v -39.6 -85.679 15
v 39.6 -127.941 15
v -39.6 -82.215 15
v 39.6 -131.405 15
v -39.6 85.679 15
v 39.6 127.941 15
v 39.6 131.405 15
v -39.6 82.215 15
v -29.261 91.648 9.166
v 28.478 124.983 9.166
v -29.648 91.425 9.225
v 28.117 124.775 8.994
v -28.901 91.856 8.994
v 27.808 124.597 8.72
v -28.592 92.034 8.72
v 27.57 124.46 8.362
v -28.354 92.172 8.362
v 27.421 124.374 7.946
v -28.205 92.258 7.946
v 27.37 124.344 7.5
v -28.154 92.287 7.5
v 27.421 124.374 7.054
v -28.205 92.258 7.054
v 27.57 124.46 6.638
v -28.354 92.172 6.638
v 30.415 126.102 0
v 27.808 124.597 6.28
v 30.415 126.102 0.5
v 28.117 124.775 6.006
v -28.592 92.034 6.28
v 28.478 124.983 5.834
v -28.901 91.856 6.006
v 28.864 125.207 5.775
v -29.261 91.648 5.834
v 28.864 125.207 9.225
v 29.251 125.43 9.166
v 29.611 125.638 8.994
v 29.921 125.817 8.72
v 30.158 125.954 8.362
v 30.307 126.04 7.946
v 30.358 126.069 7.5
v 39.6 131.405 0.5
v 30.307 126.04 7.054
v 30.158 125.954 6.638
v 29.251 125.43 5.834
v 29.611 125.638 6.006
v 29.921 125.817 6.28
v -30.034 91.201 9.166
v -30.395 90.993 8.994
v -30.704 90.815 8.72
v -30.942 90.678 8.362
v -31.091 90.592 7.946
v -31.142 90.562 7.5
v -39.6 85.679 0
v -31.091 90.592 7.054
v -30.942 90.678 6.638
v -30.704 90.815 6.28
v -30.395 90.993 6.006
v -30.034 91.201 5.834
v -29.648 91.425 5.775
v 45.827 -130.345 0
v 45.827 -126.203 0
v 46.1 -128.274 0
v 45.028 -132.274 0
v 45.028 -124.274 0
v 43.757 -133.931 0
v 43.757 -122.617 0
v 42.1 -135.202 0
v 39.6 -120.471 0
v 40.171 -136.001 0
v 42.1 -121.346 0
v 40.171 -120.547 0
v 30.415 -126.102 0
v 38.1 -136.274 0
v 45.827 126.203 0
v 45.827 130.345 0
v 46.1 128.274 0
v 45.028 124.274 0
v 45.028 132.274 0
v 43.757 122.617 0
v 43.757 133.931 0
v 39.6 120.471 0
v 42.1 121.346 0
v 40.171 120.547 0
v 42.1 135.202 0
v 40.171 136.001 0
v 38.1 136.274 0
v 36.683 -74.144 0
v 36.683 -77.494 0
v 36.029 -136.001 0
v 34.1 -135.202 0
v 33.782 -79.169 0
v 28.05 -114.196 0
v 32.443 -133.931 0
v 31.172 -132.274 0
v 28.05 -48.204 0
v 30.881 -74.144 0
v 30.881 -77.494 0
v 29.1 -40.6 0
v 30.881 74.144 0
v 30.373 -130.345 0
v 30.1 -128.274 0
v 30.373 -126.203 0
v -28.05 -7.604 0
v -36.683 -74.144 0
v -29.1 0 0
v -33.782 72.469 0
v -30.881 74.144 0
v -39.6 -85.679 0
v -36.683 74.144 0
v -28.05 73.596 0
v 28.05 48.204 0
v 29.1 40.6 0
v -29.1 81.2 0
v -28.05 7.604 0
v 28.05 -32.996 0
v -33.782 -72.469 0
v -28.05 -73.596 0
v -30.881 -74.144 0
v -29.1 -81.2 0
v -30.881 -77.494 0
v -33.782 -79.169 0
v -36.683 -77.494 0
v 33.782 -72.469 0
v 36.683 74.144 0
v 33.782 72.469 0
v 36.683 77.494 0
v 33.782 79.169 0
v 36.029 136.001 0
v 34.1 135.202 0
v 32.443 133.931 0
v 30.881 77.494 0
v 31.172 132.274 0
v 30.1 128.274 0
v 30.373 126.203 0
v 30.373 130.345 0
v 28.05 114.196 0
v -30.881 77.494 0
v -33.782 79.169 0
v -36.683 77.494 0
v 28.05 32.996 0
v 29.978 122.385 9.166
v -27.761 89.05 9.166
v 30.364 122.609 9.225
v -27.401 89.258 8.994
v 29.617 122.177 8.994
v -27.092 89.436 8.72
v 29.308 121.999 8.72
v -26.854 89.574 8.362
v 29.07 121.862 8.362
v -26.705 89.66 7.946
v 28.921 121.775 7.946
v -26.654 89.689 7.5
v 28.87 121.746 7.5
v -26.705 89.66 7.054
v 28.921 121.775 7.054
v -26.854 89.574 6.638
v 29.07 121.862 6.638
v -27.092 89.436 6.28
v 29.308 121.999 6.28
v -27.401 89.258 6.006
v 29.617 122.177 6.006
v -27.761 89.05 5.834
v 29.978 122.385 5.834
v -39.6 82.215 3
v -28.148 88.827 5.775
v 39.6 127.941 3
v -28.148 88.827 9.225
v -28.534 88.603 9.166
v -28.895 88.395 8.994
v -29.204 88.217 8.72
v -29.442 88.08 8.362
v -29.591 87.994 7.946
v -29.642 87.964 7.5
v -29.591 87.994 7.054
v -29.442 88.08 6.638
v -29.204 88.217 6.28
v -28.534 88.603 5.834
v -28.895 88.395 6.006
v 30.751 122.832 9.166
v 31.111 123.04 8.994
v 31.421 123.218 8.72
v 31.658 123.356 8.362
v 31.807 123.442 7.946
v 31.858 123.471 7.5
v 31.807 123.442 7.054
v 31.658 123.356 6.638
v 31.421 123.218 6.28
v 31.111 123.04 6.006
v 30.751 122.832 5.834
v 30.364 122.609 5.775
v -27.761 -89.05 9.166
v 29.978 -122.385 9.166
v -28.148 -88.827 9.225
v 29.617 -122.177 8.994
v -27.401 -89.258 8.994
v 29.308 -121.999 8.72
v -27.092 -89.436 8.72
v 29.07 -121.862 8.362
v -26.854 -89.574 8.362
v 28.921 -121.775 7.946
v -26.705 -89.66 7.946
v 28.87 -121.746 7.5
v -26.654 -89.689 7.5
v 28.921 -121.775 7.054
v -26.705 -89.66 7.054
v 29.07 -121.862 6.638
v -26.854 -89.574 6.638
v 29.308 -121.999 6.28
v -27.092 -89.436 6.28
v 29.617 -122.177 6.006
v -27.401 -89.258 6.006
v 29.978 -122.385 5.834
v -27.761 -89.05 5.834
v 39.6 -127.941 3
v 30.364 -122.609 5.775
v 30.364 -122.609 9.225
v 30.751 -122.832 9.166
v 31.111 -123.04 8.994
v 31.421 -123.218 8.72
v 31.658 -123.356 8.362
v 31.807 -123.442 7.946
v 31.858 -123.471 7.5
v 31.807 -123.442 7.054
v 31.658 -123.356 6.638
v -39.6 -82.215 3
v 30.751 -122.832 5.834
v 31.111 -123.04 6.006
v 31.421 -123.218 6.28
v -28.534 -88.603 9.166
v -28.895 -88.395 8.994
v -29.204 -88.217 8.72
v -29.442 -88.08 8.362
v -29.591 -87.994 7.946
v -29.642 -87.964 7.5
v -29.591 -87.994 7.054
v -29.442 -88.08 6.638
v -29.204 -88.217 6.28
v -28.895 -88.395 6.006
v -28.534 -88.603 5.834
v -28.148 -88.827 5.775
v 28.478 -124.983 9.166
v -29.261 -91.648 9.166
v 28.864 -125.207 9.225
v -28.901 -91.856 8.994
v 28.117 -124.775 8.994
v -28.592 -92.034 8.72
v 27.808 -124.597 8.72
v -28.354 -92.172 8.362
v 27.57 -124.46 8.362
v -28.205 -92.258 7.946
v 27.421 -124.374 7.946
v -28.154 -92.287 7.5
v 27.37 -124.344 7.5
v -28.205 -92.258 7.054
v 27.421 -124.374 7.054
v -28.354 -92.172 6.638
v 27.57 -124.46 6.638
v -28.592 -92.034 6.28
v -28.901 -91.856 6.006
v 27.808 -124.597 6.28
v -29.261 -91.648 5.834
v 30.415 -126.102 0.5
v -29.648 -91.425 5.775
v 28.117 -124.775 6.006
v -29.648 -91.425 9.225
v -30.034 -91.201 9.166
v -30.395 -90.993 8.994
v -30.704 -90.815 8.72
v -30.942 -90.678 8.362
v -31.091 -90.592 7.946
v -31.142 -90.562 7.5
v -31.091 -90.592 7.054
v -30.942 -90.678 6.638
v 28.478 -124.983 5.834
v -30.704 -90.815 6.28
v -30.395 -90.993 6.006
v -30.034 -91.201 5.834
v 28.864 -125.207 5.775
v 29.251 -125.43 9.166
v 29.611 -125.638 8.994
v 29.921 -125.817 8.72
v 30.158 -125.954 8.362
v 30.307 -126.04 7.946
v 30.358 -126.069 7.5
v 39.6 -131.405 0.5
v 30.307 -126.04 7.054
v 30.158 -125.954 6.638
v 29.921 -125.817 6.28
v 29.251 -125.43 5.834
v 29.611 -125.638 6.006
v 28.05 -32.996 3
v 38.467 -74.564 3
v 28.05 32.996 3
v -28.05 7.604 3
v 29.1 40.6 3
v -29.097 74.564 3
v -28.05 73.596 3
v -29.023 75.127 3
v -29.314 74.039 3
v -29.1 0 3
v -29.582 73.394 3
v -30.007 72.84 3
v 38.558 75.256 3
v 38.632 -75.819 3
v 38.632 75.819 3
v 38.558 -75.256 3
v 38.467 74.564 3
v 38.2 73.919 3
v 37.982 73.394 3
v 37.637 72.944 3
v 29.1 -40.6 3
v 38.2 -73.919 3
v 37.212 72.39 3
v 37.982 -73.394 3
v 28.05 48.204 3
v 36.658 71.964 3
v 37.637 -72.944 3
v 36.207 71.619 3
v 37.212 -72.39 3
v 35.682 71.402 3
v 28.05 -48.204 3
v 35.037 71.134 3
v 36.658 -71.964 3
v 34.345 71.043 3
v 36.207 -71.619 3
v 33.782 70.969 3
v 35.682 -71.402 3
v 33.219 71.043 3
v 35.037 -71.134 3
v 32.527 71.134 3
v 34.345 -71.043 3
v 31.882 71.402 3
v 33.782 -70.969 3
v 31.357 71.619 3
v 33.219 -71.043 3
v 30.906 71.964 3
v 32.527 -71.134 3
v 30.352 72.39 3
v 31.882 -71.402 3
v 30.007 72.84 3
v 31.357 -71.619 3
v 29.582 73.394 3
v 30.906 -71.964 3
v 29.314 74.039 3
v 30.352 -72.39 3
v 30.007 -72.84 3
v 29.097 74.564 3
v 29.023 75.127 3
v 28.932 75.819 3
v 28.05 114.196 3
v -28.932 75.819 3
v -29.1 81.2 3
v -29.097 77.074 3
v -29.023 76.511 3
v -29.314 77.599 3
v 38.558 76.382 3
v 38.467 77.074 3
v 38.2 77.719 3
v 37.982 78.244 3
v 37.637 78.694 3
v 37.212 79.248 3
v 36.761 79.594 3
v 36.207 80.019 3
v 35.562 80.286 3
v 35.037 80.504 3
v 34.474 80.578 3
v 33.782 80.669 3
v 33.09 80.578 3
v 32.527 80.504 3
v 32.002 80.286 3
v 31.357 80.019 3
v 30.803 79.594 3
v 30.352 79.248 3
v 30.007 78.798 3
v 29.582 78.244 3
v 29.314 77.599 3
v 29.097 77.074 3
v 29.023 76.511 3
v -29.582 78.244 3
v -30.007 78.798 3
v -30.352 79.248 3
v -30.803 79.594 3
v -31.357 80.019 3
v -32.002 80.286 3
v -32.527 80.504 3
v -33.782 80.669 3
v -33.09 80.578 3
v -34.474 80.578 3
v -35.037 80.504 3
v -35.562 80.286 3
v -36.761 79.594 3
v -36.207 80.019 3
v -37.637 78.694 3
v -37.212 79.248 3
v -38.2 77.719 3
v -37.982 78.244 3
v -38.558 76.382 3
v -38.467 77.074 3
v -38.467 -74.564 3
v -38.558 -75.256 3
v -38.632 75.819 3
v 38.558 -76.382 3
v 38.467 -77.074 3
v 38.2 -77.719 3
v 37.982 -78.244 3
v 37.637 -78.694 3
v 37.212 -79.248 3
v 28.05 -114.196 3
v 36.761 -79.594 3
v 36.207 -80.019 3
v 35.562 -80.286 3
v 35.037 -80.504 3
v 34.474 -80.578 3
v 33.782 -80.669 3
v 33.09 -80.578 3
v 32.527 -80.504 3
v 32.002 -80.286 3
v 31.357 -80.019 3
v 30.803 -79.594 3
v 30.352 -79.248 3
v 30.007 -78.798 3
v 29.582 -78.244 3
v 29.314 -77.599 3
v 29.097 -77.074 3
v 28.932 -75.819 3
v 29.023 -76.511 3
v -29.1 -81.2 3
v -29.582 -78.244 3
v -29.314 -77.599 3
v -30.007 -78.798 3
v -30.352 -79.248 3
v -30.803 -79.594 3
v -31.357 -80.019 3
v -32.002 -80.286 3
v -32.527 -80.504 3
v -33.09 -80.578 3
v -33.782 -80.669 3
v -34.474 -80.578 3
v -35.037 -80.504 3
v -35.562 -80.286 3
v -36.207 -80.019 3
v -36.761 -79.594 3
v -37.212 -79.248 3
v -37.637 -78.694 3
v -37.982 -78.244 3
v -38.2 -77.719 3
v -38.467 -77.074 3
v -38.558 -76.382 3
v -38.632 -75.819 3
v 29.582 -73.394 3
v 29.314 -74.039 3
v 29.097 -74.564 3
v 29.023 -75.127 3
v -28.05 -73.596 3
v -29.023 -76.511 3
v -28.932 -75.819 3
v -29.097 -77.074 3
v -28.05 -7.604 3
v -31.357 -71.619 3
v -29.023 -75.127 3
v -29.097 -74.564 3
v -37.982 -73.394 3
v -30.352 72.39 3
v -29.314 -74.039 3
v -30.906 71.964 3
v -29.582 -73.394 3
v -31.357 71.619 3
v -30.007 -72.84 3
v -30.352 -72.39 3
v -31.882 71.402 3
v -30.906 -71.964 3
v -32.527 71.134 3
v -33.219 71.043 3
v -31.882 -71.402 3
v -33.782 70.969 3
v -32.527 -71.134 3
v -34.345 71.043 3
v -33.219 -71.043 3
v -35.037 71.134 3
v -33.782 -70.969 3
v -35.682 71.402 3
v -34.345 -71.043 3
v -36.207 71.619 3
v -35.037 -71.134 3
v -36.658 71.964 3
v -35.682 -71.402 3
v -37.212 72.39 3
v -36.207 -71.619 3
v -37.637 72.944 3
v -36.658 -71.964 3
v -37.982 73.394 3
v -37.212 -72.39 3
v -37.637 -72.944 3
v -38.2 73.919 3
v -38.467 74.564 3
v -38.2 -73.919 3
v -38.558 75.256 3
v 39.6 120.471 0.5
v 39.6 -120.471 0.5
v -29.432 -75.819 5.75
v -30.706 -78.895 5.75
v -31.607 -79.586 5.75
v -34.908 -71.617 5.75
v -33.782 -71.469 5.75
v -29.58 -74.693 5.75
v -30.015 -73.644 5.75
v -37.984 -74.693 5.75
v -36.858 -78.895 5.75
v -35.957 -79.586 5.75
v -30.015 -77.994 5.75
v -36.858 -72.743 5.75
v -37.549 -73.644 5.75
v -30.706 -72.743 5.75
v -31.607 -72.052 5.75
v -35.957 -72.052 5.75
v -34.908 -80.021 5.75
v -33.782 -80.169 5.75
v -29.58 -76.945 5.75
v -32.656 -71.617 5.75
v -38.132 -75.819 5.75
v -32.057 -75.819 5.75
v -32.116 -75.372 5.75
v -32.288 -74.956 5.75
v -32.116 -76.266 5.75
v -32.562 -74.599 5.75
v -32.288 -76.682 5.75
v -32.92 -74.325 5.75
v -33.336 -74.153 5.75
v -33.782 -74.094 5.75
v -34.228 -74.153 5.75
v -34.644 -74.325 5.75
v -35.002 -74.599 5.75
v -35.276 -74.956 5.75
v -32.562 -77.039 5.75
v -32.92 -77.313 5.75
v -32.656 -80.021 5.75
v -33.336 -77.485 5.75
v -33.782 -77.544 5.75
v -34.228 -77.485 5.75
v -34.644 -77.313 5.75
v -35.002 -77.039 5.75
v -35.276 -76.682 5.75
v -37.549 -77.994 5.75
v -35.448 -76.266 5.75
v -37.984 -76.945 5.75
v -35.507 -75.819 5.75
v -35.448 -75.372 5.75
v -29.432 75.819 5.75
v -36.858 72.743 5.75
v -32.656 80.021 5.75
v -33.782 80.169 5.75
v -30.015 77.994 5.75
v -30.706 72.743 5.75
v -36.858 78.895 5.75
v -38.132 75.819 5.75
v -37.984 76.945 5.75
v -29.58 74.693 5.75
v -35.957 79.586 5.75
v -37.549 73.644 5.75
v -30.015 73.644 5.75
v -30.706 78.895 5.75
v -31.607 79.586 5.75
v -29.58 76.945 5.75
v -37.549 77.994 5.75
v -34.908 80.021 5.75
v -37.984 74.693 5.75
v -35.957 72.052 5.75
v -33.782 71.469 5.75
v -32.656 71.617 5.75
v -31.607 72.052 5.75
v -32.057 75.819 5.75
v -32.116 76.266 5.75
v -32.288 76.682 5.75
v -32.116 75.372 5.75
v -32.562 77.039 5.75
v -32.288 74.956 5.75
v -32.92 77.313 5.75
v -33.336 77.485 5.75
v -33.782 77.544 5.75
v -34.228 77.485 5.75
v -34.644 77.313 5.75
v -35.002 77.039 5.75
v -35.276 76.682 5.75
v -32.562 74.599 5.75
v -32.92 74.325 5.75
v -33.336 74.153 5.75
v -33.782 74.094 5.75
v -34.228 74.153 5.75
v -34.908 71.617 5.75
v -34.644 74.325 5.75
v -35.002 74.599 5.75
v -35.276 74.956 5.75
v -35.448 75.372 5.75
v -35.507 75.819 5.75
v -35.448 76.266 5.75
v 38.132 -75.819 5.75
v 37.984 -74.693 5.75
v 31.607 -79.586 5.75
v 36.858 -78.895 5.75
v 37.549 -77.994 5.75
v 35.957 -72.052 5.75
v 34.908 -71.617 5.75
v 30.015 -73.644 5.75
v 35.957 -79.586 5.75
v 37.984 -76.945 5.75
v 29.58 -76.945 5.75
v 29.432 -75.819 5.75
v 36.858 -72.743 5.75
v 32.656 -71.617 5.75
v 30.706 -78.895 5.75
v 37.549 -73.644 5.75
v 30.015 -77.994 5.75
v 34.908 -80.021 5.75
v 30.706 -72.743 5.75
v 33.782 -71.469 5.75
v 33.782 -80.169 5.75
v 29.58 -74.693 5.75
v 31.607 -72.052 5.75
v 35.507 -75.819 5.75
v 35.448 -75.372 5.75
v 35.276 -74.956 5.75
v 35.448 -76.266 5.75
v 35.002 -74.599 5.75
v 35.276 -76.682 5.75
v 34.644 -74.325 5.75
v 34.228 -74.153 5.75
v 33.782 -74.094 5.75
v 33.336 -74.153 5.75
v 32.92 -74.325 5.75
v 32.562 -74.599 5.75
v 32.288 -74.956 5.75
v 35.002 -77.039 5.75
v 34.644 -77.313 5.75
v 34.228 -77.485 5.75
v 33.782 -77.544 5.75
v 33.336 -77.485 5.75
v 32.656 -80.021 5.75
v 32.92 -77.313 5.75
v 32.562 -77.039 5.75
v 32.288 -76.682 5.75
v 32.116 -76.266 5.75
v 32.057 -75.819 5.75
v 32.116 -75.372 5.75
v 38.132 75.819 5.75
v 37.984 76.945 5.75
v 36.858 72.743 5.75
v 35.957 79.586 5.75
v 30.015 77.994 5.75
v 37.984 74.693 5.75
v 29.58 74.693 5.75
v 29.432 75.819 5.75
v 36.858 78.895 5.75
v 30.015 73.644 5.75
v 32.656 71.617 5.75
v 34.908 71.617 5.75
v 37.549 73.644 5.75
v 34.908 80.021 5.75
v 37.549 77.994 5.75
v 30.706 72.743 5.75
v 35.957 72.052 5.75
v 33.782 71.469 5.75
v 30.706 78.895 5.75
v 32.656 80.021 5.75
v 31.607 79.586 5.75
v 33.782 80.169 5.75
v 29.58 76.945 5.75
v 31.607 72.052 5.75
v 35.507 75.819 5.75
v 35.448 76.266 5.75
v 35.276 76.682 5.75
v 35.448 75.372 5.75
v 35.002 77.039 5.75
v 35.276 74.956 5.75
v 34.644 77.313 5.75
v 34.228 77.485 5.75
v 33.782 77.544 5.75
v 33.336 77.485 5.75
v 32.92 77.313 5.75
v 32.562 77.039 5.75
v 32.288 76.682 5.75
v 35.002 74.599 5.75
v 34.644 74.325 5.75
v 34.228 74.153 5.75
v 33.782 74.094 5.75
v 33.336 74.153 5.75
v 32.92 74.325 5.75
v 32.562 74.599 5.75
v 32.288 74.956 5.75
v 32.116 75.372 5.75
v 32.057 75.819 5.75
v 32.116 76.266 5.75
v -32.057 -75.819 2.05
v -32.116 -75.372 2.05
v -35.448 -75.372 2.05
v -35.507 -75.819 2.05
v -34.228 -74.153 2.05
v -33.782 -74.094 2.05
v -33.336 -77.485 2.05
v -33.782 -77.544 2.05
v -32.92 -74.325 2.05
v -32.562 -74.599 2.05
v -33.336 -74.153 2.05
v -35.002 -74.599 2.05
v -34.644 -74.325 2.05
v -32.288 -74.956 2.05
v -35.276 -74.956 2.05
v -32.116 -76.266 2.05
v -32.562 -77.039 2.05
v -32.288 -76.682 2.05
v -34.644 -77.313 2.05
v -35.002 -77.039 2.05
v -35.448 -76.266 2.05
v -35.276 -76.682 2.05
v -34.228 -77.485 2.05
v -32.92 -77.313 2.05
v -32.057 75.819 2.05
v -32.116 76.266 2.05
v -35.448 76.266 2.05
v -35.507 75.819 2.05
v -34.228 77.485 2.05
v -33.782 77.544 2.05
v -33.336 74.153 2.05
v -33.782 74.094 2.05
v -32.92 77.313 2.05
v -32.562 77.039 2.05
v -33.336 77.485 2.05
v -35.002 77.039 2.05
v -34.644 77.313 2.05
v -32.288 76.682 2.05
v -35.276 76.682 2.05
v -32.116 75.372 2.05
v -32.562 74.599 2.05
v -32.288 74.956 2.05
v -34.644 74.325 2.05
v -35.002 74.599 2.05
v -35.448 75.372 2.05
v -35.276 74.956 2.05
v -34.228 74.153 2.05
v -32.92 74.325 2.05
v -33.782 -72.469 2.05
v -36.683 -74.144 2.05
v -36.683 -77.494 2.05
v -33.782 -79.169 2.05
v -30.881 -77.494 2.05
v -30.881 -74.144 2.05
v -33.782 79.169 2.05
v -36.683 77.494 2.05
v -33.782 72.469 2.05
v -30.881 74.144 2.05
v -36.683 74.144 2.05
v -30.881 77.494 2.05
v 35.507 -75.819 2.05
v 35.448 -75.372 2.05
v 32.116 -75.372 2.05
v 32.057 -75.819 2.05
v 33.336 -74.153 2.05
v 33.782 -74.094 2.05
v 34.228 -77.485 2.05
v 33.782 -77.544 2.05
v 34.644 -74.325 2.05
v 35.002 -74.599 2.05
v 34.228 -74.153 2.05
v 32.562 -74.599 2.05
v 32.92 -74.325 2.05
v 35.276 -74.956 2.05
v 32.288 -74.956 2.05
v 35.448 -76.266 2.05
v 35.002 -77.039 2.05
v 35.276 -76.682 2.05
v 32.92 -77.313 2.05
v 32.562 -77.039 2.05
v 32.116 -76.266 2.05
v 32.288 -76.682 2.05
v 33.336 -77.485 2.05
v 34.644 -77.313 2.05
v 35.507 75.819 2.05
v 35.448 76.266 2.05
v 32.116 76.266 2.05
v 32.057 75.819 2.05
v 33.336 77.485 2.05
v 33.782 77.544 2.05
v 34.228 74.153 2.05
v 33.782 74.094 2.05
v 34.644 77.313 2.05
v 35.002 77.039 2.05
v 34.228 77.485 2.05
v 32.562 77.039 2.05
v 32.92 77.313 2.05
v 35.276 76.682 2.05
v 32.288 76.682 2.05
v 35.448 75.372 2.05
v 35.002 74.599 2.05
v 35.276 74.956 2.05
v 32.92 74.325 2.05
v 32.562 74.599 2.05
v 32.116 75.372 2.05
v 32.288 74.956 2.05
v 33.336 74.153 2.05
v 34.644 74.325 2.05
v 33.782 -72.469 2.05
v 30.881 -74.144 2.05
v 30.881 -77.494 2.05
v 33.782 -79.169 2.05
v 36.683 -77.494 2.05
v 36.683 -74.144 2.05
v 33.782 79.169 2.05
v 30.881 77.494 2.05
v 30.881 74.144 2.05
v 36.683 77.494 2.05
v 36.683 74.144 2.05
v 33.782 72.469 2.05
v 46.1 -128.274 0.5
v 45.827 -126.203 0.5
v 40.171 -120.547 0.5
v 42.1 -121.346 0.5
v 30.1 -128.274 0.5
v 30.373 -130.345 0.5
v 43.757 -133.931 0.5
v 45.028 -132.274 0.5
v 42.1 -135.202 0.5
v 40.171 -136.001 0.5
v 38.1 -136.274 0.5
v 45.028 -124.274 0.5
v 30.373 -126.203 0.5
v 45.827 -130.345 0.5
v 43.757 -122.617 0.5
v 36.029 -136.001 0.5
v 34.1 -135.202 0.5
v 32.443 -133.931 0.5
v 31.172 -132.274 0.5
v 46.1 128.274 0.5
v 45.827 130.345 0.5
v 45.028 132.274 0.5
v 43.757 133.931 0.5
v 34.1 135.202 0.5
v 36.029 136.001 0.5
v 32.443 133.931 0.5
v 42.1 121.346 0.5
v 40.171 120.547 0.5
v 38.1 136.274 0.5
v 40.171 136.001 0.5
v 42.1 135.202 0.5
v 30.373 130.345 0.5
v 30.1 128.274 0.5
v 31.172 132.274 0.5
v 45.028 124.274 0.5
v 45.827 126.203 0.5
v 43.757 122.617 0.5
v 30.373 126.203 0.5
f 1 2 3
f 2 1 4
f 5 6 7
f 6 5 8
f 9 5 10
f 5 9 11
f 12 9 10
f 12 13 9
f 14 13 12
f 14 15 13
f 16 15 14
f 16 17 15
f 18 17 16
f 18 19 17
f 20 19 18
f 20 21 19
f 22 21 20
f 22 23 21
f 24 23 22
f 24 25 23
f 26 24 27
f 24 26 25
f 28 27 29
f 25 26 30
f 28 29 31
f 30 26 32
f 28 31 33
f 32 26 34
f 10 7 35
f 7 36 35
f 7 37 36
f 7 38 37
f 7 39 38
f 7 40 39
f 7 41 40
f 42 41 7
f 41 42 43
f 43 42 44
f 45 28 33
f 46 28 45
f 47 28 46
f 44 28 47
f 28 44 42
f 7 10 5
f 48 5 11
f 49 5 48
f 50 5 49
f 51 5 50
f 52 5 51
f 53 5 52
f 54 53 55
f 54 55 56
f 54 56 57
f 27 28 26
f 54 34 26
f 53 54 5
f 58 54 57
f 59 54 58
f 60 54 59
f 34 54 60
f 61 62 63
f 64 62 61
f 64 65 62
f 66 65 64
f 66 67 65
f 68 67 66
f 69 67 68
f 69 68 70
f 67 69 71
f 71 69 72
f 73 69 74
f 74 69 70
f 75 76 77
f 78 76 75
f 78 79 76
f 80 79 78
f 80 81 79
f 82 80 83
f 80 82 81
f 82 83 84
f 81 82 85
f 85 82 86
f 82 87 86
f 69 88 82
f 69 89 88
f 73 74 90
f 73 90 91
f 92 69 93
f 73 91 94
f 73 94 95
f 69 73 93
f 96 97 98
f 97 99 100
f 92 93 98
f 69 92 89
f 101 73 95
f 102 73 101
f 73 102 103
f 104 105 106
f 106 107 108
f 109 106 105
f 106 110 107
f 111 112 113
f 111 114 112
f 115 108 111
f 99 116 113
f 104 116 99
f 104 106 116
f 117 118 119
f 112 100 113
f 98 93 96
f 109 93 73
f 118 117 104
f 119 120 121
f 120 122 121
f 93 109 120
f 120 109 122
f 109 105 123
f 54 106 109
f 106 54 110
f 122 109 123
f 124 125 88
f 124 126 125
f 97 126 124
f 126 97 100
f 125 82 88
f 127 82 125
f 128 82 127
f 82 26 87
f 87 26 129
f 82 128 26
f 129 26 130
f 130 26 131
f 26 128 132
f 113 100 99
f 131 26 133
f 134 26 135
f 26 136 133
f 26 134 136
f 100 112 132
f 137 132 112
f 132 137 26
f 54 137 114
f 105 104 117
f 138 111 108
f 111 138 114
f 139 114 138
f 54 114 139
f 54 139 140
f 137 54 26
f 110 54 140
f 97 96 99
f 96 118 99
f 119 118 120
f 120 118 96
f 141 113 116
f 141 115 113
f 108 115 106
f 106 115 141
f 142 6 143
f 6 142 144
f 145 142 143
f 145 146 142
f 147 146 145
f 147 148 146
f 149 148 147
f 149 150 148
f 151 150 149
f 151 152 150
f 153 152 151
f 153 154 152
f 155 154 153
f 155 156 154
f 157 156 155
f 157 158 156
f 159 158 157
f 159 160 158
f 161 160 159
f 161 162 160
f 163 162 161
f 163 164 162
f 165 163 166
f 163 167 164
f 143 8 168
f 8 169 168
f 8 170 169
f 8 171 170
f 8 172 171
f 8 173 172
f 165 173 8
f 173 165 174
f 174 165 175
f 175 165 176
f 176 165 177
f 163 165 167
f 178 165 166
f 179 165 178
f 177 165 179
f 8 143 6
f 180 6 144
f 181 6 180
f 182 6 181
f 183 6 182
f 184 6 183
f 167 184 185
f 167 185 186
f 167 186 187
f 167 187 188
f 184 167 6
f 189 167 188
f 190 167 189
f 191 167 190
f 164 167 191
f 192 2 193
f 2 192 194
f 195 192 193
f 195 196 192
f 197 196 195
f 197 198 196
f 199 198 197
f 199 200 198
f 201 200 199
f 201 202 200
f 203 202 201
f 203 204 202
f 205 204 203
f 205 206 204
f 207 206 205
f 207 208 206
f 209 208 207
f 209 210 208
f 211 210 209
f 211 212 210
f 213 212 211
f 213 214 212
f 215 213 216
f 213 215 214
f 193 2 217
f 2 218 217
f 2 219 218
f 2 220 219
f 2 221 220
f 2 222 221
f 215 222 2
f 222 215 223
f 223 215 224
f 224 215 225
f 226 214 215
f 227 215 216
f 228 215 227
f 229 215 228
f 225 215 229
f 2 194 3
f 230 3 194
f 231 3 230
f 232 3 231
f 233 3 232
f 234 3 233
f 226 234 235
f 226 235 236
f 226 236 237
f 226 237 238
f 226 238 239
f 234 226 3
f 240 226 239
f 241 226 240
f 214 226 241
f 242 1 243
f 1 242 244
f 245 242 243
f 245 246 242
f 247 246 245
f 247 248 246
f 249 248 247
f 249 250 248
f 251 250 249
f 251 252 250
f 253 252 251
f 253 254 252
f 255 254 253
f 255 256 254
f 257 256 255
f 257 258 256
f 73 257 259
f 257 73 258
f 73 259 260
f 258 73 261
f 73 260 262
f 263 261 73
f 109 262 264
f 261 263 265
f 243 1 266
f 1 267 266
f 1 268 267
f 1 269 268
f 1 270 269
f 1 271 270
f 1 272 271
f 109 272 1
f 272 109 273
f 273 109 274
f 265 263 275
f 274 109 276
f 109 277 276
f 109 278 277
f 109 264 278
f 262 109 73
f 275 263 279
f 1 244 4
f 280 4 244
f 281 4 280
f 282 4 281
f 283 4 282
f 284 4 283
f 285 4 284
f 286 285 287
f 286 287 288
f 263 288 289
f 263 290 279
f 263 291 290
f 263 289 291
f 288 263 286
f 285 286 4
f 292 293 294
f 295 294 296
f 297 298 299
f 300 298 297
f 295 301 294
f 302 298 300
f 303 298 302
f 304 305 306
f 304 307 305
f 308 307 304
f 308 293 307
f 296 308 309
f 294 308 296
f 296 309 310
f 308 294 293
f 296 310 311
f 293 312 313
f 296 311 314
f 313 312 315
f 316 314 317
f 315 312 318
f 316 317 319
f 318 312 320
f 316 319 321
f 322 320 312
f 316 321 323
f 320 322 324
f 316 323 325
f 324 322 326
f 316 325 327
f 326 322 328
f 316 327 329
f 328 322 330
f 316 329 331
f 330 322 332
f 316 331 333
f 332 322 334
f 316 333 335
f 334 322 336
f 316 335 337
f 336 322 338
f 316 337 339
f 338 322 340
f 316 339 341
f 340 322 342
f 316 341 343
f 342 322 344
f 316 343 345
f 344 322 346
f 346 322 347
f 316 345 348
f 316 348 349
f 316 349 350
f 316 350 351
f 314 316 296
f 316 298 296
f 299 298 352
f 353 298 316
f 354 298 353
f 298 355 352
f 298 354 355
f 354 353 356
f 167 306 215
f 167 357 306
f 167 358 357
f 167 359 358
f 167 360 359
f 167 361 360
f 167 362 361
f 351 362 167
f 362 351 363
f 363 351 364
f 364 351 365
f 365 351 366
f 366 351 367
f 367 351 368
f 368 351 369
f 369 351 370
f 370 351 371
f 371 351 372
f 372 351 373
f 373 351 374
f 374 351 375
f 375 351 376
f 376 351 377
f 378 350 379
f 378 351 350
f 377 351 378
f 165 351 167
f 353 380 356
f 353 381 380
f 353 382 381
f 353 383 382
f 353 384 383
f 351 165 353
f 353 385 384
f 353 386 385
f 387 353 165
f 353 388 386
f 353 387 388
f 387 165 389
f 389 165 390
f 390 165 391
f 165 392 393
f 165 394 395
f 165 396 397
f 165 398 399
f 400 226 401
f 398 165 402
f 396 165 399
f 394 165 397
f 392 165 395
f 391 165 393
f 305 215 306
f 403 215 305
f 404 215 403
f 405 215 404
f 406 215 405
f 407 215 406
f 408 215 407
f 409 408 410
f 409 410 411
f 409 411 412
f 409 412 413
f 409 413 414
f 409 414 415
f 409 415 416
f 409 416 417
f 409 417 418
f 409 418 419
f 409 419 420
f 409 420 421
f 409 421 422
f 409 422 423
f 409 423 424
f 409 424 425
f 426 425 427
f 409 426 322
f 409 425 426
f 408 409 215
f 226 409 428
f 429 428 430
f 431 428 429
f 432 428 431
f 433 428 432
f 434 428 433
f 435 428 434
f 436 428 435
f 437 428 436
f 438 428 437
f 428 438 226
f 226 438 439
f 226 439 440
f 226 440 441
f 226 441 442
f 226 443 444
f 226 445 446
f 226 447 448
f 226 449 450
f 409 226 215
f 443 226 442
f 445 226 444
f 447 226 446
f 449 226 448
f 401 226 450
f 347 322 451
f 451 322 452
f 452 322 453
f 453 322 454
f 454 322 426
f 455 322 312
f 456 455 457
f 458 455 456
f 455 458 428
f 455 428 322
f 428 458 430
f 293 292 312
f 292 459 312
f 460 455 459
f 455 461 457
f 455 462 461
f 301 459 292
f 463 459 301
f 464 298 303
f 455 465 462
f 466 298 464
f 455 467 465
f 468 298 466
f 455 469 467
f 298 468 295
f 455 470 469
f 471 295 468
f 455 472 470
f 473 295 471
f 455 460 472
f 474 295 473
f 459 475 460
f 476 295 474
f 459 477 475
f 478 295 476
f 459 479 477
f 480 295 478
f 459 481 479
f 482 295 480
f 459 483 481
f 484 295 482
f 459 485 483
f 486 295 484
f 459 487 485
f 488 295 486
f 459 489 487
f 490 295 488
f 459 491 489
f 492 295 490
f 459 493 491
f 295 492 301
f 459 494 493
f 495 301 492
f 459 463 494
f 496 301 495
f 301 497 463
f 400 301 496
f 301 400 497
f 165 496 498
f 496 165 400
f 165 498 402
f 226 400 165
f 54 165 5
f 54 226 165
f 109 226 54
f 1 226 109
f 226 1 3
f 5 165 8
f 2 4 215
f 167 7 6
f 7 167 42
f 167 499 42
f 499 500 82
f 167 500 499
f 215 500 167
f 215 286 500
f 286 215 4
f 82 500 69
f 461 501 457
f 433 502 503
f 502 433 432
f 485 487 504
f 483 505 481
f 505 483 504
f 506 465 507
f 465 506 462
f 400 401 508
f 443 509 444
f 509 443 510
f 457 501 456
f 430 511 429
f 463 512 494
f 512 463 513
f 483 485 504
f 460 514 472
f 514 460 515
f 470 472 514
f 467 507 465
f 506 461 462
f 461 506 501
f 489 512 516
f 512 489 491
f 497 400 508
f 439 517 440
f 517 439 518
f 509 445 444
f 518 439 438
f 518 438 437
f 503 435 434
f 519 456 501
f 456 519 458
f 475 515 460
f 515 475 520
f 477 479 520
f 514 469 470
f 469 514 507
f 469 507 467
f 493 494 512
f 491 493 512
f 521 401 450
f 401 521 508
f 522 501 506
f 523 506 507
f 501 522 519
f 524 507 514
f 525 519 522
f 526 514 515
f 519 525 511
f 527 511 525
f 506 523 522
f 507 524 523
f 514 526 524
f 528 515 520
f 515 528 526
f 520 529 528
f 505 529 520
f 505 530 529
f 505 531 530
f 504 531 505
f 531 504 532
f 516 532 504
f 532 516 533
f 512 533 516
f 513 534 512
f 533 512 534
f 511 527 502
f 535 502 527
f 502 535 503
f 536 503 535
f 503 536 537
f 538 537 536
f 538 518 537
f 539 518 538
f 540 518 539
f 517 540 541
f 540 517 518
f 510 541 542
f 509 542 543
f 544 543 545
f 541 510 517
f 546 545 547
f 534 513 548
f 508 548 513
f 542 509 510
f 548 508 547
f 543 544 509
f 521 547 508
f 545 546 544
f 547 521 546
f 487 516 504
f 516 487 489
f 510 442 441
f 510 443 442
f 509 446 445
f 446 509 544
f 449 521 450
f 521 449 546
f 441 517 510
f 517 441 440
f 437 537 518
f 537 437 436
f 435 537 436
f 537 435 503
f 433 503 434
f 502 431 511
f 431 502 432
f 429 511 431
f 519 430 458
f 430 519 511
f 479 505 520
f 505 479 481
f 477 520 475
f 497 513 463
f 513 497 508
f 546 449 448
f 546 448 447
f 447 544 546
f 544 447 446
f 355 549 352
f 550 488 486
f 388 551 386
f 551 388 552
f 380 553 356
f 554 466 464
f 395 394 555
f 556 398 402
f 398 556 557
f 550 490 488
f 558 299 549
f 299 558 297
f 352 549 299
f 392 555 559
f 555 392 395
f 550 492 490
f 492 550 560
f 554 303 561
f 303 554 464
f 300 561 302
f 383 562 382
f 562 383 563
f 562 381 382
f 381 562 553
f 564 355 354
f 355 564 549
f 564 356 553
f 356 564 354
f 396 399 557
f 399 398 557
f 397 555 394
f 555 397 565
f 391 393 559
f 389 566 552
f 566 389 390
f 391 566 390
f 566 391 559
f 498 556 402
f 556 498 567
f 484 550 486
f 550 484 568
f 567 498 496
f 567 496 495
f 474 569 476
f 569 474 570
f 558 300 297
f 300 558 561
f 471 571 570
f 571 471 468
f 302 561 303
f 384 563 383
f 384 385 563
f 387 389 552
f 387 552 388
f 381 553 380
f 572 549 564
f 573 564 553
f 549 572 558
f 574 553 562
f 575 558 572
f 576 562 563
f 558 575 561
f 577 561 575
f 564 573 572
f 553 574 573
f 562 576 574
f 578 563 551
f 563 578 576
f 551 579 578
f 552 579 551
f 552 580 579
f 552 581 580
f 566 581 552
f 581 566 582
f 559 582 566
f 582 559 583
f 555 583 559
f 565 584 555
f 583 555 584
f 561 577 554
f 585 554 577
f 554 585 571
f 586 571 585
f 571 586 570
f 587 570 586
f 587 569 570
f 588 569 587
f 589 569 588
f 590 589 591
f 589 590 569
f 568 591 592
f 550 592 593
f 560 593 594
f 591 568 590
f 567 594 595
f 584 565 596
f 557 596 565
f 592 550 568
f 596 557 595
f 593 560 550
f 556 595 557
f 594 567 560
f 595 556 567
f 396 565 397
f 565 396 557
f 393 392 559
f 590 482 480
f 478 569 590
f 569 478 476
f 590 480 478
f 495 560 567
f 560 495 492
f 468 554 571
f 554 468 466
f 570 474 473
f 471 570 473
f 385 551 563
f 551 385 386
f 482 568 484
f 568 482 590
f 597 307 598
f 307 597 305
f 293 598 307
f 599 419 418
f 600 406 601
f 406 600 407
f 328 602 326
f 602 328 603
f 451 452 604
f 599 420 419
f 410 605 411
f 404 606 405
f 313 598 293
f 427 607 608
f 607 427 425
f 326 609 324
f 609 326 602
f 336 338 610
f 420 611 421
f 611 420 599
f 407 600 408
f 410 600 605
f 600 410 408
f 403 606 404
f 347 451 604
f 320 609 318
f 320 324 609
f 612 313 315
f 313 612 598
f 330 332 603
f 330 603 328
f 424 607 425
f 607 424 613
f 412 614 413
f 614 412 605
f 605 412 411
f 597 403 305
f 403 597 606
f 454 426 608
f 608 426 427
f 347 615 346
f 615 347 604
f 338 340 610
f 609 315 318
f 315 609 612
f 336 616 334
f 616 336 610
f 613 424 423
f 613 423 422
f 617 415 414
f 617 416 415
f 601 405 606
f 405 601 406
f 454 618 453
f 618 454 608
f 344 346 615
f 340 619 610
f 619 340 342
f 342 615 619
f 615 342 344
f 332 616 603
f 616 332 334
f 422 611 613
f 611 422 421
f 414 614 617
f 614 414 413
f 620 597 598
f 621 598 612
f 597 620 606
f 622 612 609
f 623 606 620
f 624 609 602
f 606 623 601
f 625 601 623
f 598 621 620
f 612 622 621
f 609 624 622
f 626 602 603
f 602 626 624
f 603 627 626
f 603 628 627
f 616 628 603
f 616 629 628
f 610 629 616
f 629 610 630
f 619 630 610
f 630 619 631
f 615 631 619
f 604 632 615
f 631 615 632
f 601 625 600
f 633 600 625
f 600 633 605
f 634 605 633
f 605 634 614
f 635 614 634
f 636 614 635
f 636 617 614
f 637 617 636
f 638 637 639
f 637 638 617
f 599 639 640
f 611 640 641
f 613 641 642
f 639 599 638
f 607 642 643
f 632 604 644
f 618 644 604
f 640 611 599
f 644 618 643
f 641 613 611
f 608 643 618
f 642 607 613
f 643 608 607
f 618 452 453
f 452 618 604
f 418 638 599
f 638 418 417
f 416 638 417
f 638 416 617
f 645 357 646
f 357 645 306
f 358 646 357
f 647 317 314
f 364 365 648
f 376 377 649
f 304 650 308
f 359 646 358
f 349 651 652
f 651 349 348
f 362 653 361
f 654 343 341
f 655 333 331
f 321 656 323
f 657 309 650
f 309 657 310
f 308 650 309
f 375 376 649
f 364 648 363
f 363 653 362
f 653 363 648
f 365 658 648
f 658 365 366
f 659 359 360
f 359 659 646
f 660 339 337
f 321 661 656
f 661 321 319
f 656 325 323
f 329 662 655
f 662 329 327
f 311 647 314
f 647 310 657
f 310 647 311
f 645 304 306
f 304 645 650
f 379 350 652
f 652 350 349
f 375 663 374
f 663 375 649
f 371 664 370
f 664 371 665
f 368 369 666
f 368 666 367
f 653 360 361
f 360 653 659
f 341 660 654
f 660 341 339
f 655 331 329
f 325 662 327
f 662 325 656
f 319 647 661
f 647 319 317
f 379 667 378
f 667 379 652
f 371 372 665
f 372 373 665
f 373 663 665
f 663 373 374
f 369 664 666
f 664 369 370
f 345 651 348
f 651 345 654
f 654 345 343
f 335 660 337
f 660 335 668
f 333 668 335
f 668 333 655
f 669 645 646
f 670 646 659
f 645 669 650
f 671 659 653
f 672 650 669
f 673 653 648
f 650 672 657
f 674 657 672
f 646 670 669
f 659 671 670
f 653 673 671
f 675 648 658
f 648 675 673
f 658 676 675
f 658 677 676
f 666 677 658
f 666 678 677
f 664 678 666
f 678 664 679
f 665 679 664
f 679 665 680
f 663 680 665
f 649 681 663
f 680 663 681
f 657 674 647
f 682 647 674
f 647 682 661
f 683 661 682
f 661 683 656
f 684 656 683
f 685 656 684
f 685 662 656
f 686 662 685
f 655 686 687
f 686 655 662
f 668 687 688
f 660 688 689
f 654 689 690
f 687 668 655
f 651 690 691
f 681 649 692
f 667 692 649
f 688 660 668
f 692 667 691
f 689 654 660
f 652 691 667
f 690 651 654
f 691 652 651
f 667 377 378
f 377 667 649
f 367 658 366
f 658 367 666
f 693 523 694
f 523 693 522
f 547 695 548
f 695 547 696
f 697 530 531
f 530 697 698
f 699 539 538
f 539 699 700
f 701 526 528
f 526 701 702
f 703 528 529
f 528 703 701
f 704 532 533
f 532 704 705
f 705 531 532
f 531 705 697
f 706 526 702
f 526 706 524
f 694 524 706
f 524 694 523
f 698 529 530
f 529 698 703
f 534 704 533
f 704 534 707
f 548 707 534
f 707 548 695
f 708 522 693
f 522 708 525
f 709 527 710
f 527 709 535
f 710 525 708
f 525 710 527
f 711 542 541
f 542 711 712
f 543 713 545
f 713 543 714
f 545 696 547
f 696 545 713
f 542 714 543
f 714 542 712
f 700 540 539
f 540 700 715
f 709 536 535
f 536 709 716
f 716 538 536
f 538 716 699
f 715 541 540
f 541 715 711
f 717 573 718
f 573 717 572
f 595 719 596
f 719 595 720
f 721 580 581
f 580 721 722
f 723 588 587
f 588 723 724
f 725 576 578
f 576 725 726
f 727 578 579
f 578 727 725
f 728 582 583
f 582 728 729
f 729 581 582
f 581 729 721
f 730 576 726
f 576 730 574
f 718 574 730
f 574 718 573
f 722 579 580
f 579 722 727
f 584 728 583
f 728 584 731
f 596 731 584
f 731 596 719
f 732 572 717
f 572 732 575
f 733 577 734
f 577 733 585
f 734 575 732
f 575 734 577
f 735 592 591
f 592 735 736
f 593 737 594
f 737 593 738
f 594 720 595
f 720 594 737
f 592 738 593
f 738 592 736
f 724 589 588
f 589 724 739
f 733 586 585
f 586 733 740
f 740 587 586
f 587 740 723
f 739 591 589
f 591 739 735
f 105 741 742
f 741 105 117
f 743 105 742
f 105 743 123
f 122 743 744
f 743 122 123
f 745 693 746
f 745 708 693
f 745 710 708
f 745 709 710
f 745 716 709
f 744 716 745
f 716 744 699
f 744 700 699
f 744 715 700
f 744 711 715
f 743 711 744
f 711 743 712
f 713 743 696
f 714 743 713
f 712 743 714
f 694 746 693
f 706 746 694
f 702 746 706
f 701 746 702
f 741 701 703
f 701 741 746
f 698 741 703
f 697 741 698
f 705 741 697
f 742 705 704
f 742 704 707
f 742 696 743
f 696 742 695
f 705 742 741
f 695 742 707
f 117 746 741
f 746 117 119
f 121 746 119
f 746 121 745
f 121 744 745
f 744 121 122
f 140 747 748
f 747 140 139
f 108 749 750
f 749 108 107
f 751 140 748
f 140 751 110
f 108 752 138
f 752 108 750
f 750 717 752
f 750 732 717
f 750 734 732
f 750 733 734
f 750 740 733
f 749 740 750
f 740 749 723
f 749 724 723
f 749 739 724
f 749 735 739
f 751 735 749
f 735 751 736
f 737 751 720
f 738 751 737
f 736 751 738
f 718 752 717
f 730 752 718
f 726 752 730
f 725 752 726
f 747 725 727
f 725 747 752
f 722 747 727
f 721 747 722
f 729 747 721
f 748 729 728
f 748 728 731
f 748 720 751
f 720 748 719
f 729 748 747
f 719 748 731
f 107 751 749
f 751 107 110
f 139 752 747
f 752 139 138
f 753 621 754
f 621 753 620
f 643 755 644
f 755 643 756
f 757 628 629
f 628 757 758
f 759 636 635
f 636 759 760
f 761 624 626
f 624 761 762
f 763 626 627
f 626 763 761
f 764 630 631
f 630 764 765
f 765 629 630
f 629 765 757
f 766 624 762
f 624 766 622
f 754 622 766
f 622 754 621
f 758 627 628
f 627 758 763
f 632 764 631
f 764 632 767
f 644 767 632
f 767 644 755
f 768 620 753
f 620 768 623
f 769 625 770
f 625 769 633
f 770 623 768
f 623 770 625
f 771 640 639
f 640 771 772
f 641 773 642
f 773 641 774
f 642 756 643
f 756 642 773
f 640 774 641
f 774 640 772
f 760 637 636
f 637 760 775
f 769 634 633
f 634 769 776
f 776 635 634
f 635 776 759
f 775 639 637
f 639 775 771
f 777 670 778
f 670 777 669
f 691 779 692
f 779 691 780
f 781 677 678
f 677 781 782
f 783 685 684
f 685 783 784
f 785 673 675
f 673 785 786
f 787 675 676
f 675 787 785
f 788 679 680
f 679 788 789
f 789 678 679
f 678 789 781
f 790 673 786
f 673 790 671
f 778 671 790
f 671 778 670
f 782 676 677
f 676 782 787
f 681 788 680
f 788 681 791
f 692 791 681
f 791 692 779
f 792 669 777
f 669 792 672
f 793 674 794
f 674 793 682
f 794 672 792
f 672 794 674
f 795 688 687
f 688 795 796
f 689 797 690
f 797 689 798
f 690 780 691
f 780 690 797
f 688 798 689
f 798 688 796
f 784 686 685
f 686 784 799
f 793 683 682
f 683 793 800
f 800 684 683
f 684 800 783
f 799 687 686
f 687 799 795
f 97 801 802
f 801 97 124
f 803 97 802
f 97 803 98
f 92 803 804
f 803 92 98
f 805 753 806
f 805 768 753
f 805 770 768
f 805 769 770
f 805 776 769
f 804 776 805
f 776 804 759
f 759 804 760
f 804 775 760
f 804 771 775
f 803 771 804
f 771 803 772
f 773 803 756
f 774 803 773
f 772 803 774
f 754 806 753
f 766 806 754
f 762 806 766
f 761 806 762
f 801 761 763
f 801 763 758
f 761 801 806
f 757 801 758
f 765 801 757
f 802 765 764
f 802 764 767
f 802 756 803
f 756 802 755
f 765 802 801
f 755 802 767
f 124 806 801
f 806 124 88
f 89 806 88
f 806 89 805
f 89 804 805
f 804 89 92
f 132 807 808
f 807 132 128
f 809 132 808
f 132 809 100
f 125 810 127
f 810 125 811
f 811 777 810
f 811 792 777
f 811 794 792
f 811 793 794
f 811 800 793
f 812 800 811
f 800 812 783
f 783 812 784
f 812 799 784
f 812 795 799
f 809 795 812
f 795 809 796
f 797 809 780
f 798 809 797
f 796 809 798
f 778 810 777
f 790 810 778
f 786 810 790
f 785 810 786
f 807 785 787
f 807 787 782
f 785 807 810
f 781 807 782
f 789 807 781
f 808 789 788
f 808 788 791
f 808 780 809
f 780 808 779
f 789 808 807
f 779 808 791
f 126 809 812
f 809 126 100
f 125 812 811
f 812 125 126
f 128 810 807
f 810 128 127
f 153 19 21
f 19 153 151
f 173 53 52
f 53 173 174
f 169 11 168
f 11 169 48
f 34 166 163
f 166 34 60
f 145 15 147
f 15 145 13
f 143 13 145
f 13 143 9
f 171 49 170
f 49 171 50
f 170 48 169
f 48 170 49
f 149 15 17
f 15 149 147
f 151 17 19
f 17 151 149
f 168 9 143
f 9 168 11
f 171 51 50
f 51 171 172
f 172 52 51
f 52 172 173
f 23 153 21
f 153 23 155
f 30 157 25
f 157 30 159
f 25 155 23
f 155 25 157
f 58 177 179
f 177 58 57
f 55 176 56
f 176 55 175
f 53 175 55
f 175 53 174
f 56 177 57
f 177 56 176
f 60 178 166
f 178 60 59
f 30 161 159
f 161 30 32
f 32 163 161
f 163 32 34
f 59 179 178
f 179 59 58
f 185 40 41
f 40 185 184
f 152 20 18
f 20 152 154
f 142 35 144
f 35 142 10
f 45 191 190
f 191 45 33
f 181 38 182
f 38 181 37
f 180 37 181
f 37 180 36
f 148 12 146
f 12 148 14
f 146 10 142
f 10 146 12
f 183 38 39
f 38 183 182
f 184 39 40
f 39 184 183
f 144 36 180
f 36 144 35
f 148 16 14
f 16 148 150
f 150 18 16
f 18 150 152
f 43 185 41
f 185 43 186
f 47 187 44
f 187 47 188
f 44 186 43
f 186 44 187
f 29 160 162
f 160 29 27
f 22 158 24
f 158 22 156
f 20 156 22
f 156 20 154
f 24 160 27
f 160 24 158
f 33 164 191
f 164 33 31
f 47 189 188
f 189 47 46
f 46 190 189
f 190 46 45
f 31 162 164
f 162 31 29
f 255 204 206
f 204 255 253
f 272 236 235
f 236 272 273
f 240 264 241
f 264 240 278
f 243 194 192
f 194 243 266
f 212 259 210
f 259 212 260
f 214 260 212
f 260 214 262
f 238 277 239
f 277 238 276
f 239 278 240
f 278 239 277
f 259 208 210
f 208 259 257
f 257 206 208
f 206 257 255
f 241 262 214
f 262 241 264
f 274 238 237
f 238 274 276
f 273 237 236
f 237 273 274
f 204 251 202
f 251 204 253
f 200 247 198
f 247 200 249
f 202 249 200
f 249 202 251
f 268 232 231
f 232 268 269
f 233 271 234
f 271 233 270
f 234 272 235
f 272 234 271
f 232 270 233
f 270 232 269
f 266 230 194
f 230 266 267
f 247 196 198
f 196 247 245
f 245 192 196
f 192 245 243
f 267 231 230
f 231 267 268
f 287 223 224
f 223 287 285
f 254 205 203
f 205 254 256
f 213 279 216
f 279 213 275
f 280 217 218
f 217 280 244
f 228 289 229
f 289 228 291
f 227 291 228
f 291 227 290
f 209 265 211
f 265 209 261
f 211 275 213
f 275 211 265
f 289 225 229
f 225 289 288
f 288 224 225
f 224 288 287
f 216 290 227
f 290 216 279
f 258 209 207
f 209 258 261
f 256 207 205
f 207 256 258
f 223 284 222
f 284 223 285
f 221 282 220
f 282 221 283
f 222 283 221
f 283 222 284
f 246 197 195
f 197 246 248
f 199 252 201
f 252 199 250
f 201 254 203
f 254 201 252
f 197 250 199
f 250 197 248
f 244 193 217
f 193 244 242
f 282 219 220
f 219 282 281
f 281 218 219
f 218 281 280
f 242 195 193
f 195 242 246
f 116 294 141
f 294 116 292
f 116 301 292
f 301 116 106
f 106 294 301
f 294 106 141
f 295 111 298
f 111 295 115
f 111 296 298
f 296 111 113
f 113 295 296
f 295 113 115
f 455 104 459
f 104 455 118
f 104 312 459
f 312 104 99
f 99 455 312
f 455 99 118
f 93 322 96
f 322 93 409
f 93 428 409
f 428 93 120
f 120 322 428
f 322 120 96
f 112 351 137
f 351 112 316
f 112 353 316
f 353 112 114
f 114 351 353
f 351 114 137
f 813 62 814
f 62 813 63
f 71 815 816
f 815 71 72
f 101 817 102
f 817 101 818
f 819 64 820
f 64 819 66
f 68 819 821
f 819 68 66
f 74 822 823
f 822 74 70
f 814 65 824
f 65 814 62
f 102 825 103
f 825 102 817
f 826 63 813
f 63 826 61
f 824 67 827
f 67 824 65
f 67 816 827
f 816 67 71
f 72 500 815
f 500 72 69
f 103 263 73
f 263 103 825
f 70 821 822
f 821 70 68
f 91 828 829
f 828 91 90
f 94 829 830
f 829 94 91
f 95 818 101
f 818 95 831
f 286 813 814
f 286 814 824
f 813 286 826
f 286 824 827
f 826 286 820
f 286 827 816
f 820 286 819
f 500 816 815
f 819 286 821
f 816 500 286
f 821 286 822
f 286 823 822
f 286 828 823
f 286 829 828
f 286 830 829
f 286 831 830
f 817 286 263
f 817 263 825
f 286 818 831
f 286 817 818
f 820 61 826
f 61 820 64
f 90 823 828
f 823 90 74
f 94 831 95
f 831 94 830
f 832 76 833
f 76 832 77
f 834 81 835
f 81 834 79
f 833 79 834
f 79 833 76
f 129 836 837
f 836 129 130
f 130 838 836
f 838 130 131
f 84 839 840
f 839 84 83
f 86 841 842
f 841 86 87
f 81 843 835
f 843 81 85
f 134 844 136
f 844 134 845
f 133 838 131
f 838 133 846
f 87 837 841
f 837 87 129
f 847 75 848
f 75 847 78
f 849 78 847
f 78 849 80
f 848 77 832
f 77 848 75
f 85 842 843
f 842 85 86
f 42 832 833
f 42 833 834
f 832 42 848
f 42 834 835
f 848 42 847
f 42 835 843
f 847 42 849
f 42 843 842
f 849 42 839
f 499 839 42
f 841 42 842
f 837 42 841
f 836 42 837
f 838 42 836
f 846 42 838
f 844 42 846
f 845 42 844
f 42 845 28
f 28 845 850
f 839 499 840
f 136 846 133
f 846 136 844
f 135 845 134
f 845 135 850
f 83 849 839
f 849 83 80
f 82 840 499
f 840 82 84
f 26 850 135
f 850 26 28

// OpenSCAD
// file: nema17.scad
/**
 * @author Johann Rocholl <johann@rocholl.net>
 * @license GPL-3.0
 */

include <configuration.scad>;

module nema17() {
  // NEMA 17 stepper motor.
  difference() {
    union() {
      translate([0, 0, -motor_length/2]) intersection() {
        cube([42.2, 42.2, motor_length], center=true);
        cylinder(r=25.1, h=motor_length+1, center=true, $fn=60);
      }
      cylinder(r=11, h=4, center=true, $fn=32);
      cylinder(r=2.5, h=48, center=true, $fn=24);
    }
    for (a = [0:90:359]) {
      rotate([0, 0, a]) translate([15.5, 15.5, 0])
        cylinder(r=m3_radius, h=10, center=true, $fn=12);
    }
  }
}

nema17();
// file: vertex.scad
include <configuration.scad>;

$fn = 24;
roundness = 6;

module extrusion_cutout(h, extra) {
  difference() {
    cube([extrusion+extra, extrusion+extra, h], center=true);
    for (a = [0:90:359]) rotate([0, 0, a]) {
      translate([extrusion/2, 0, 0])
        cube([6, 2.5, h+1], center=true);
    }
  }
}

module screw_socket() {
  cylinder(r=m3_wide_radius, h=20, center=true);
  translate([0, 0, 3.8]) cylinder(r=3.5, h=5);
}

module screw_socket_cone() {
  union() {
    screw_socket();
    scale([1, 6, -1]) # cylinder(r=7, h=4);
  }
}

module vertex(height, idler_offset, idler_space) {
  union() {
    // Pads to improve print bed adhesion for slim ends.
    translate([-(37.5 + idler_offset/2), 52.2 + idler_offset, -height/2]) cylinder(r=8, h=0.5);
    translate([(37.5 + idler_offset/2), 52.2 + idler_offset, -height/2]) cylinder(r=8, h=0.5);
    difference() {
      union() {
        intersection() {
          translate([0, 22, 0])
            cylinder(r=36, h=height, center=true, $fn=60);
          translate([0, -37, 0]) rotate([0, 0, 30])
            cylinder(r=50, h=height+1, center=true, $fn=6);
        }
        translate([0, 38, 0]) intersection() {
          translate([0, idler_offset, 0]) rotate([0, 0, -90])
            cylinder(r=55 + idler_offset, h=height, center=true, $fn=3);
          translate([0, 10, 0])
            cube([100 + idler_offset, 100 + idler_offset, 2*height], center=true);
          translate([0, -10, 0]) rotate([0, 0, 30])
            cylinder(r=55 + idler_offset, h=height+1, center=true, $fn=6);
        }
      }
      difference() {
        translate([0, 58, 0]) minkowski() {
          intersection() {
            rotate([0, 0, -90])
              cylinder(r=55, h=height, center=true, $fn=3);
            translate([0, -32 + idler_offset / 2, 0])
              cube([100, 16 + idler_offset, 2*height], center=true);
          }
          cylinder(r=roundness, h=1, center=true);
        }
        // Idler support cones.
        translate([0, 26+idler_offset-30, 0]) rotate([-90, 0, 0])
          cylinder(r1=30, r2=2, h=30-idler_space/2);
        translate([0, 26+idler_offset+30, 0]) rotate([90, 0, 0])
          cylinder(r1=30, r2=2, h=30-idler_space/2);
      }
      translate([0, 58, 0]) minkowski() {
        intersection() {
          rotate([0, 0, -90])
            cylinder(r=55, h=height, center=true, $fn=3);
          translate([0, 7 + idler_offset, 0])
            cube([100, 30, 2*height], center=true);
        }
        cylinder(r=roundness, h=1, center=true);
      }
      extrusion_cutout(height+10, 2*extra_radius);

      for (z = [30:30:height]) {
        translate([0, -7.5-extra_radius, z+7.5-height/2]) rotate([90, 0, 0])
          screw_socket_cone();
      }

      for (z = [0:30:height]) {
        for (a = [-1, 1]) {
          rotate([0, 0, 30*a]) translate([-16*a, 111, z+7.5-height/2]) {
            // % rotate([90, 0, 0]) extrusion_cutout(200, 0);
            // Screw sockets.
            for (y = [-88 + (idler_offset / 4) * 3, -44 + (idler_offset / 4) * 3]) {
              translate([a*7.5, y, 0]) rotate([0, a*90, 0]) screw_socket();
            }
            // Nut tunnels.
            for (z = [-1, 1]) {
              scale([1, 1, z]) translate([0, -100, 3]) minkowski() {
                rotate([0, 0, -a*30]) cylinder(r=4, h=16, $fn=6);
                cube([0.1, 5, 0.1], center=true);
              }
            }
          }
        }
      }
    }
  }
}

translate([0, 0, 7.5]) vertex(15, idler_offset=15, idler_space=10);
// file: frame_motor.scad
include <configuration.scad>;

use <vertex.scad>;
use <nema17.scad>;

$fn = 24;
idler_offset = 15;

module frame_motor() {
  difference() {
    // No idler cones.
    vertex(3*extrusion, idler_offset=idler_offset, idler_space=100);
    // KOSSEL logotype.
    translate([20.5, -10, 0]) rotate([90, -90, 30])
      scale([0.11, 0.11, 1]) import("logotype.stl");
    // Motor cable paths.
    for (mirror = [-1, 1]) scale([mirror, 1, 1]) {
      translate([-35 - idler_offset / 2, 45 + idler_offset, 0]) rotate([0, 0, -30])
        # cube([4, 15, 15], center=true);
      translate([-6, 0, 0]) cylinder(r=2.5, h=40);
      translate([-11, 0, 0]) # cube([15, 4, 15], center=true);
    }
    translate([0, motor_offset + idler_offset, 0]) {
      // Motor shaft/pulley cutout.
      rotate([90, 0, 0]) cylinder(r=12, h=20, center=true, $fn=60);
      // NEMA 17 stepper motor mounting screws.
      for (x = [-1, 1]) for (z = [-1, 1]) {
        scale([x, 1, z]) translate([15.5, -5, 15.5]) {
          rotate([90, 0, 0]) cylinder(r=1.65, h=20, center=true, $fn=12);
          // Easier ball driver access.
          rotate([74, -30, 0]) # cylinder(r=1.8, h=60, $fn=12);
        }
      }
    }
    translate([0, motor_offset + idler_offset, 0]) rotate([90, 0, 0]) % nema17();
  }
}

translate([0, 0, 22.5]) frame_motor();
// file: configuration.scad
// Increase this if your slicer or printer make holes too tight.
extra_radius = 0.1;

// OD = outside diameter, corner to corner.
m3_nut_od = 6.1;
m3_nut_radius = m3_nut_od/2 + 0.2 + extra_radius;
m3_nut_thickness = 2.4 + extra_radius;
m3_washer_radius = 3.5 + extra_radius;

// Major diameter of metric 3mm thread.
m3_major = 2.85;
m3_radius = m3_major/2 + extra_radius;
m3_wide_radius = m3_major/2 + extra_radius + 0.2;

// OD = outside diameter, corner to corner.
m4_nut_od = 7.1;
m4_nut_radius = m4_nut_od/2 + 0.2 + extra_radius;
m4_thickness = 3.82 + extra_radius;
m4_washer_radius = 4.5 + extra_radius;

// Major diameter of metric 3mm thread.
m4_major = 3.85;
m4_radius = m4_major/2 + extra_radius;
m4_wide_radius = m4_major/2 + extra_radius + 0.2;

// NEMA17 stepper motors.
motor_shaft_diameter = 5;
motor_shaft_radius = motor_shaft_diameter/2 + extra_radius;

// Frame brackets. M3x8mm screws work best with 3.6 mm brackets.
thickness = 3.6;

// OpenBeam or Misumi. Currently only 15x15 mm, but there is a plan
// to make models more parametric and allow 20x20 mm in the future.
extrusion = 15;

// Placement for the NEMA17 stepper motors.
motor_offset = 44;
motor_length = 47;
// main file
include <configuration.scad>;
use <frame_motor.scad>;

$fn = 24;
roundness = 6;

board_length = 160.274;
board_width = 76.2;
board_height = 2;
board_mount_length = 151.638;
board_mount_width = 67.564;

module extrusion_cutout(h, extra) {
  difference() {
    cube([extrusion+extra, extrusion+extra, h], center=true);
    for (a = [0:90:359]) rotate([0, 0, a]) {
      translate([extrusion/2, 0, 0])
        cube([6, 2.5, h+1], center=true);
    }
  }
}

module screw_socket() {
  cylinder(r=m3_wide_radius, h=20, center=true);
  translate([0, 0, 3.8]) cylinder(r=3.5, h=5);
}

module board_mount(h) {
  thickness = 3;
  length = board_length;
  width = board_width;
  mount = -width/2 - thickness/2;
  height = extrusion;
  extra = 3;

  // Pads to improve print bed adhesion for slim ends.
  translate([width/2, -length+32, 0]) cylinder(r=8, h=0.5);
  translate([width/2, length-32, 0]) cylinder(r=8, h=0.5);

  difference() {
    union() {
      intersection() {
        union() {
          translate([board_width + extrusion, 0, thickness/2]) {
            rotate([0, 0, 180])
              cylinder(r=276, h=thickness, center=true, $fn=3);
          }

          for (a = [1, -1]) {
            rotate([0, 0, 30*a]) translate([width, (100 - extrusion/2)*a, height/2])
              cube([width * 2, thickness, height], center=true);
          }
        }

        rotate([0, 0, 270]) translate([0, 0, height/2])
          cube([length * 2, width + extra, height], center=true);
      }

      for (x = [-board_mount_width / 2, board_mount_width / 2]) {
        for (y = [-board_mount_length / 2, board_mount_length / 2]) {
          translate([x, y, thickness])
            cylinder(r1=m3_nut_radius + 2, r2=m3_nut_radius + 1, h=m3_nut_thickness + 3, center=true);
        }
      }
    }

    union() {
      translate([0, 0, thickness - 1])
        for (x = [-board_mount_width / 2, board_mount_width / 2]) {
          for (y = [-board_mount_length / 2, board_mount_length / 2]) {
            translate([x, y, 0]) screw_socket();
            translate([x, y, -1.2]) rotate([0, 0, 90])
              cylinder(r=m3_nut_radius, h=m3_nut_thickness, center=true, $fn=6);
          }
        }

      for (a = [1, -1]) {
        translate([0, (length/2 + 35 - extrusion/2) * a, extrusion/2]) rotate([90*a, 0, 30*a])
          for (x = [-board_mount_width / 2, board_mount_width / 2]) {
            translate([x, 0, 0]) screw_socket();
          }
      }

      translate([9, 0, thickness/2]) rotate([0, 0, 180])
        cylinder(r=width/2, h=thickness+1, center=true, $fn=3);
      translate([-9, width/2 + 2.5, thickness/2]) rotate([0, 0, 0])
        cylinder(r=width/2, h=thickness+1, center=true, $fn=3);
      translate([-9, -width/2 - 2.5, thickness/2]) rotate([0, 0, 0])
        cylinder(r=width/2, h=thickness+1, center=true, $fn=3);
      translate([9, -width - 5, thickness/2]) rotate([0, 0, 180])
        cylinder(r=width/2, h=thickness+1, center=true, $fn=3);
      translate([9, width + 5, thickness/2]) rotate([0, 0, 180])
        cylinder(r=width/2, h=thickness+1, center=true, $fn=3);
    }
  }
}

translate([0, 0, 0]) rotate([0, 0, 0]) board_mount(extrusion * 3);
